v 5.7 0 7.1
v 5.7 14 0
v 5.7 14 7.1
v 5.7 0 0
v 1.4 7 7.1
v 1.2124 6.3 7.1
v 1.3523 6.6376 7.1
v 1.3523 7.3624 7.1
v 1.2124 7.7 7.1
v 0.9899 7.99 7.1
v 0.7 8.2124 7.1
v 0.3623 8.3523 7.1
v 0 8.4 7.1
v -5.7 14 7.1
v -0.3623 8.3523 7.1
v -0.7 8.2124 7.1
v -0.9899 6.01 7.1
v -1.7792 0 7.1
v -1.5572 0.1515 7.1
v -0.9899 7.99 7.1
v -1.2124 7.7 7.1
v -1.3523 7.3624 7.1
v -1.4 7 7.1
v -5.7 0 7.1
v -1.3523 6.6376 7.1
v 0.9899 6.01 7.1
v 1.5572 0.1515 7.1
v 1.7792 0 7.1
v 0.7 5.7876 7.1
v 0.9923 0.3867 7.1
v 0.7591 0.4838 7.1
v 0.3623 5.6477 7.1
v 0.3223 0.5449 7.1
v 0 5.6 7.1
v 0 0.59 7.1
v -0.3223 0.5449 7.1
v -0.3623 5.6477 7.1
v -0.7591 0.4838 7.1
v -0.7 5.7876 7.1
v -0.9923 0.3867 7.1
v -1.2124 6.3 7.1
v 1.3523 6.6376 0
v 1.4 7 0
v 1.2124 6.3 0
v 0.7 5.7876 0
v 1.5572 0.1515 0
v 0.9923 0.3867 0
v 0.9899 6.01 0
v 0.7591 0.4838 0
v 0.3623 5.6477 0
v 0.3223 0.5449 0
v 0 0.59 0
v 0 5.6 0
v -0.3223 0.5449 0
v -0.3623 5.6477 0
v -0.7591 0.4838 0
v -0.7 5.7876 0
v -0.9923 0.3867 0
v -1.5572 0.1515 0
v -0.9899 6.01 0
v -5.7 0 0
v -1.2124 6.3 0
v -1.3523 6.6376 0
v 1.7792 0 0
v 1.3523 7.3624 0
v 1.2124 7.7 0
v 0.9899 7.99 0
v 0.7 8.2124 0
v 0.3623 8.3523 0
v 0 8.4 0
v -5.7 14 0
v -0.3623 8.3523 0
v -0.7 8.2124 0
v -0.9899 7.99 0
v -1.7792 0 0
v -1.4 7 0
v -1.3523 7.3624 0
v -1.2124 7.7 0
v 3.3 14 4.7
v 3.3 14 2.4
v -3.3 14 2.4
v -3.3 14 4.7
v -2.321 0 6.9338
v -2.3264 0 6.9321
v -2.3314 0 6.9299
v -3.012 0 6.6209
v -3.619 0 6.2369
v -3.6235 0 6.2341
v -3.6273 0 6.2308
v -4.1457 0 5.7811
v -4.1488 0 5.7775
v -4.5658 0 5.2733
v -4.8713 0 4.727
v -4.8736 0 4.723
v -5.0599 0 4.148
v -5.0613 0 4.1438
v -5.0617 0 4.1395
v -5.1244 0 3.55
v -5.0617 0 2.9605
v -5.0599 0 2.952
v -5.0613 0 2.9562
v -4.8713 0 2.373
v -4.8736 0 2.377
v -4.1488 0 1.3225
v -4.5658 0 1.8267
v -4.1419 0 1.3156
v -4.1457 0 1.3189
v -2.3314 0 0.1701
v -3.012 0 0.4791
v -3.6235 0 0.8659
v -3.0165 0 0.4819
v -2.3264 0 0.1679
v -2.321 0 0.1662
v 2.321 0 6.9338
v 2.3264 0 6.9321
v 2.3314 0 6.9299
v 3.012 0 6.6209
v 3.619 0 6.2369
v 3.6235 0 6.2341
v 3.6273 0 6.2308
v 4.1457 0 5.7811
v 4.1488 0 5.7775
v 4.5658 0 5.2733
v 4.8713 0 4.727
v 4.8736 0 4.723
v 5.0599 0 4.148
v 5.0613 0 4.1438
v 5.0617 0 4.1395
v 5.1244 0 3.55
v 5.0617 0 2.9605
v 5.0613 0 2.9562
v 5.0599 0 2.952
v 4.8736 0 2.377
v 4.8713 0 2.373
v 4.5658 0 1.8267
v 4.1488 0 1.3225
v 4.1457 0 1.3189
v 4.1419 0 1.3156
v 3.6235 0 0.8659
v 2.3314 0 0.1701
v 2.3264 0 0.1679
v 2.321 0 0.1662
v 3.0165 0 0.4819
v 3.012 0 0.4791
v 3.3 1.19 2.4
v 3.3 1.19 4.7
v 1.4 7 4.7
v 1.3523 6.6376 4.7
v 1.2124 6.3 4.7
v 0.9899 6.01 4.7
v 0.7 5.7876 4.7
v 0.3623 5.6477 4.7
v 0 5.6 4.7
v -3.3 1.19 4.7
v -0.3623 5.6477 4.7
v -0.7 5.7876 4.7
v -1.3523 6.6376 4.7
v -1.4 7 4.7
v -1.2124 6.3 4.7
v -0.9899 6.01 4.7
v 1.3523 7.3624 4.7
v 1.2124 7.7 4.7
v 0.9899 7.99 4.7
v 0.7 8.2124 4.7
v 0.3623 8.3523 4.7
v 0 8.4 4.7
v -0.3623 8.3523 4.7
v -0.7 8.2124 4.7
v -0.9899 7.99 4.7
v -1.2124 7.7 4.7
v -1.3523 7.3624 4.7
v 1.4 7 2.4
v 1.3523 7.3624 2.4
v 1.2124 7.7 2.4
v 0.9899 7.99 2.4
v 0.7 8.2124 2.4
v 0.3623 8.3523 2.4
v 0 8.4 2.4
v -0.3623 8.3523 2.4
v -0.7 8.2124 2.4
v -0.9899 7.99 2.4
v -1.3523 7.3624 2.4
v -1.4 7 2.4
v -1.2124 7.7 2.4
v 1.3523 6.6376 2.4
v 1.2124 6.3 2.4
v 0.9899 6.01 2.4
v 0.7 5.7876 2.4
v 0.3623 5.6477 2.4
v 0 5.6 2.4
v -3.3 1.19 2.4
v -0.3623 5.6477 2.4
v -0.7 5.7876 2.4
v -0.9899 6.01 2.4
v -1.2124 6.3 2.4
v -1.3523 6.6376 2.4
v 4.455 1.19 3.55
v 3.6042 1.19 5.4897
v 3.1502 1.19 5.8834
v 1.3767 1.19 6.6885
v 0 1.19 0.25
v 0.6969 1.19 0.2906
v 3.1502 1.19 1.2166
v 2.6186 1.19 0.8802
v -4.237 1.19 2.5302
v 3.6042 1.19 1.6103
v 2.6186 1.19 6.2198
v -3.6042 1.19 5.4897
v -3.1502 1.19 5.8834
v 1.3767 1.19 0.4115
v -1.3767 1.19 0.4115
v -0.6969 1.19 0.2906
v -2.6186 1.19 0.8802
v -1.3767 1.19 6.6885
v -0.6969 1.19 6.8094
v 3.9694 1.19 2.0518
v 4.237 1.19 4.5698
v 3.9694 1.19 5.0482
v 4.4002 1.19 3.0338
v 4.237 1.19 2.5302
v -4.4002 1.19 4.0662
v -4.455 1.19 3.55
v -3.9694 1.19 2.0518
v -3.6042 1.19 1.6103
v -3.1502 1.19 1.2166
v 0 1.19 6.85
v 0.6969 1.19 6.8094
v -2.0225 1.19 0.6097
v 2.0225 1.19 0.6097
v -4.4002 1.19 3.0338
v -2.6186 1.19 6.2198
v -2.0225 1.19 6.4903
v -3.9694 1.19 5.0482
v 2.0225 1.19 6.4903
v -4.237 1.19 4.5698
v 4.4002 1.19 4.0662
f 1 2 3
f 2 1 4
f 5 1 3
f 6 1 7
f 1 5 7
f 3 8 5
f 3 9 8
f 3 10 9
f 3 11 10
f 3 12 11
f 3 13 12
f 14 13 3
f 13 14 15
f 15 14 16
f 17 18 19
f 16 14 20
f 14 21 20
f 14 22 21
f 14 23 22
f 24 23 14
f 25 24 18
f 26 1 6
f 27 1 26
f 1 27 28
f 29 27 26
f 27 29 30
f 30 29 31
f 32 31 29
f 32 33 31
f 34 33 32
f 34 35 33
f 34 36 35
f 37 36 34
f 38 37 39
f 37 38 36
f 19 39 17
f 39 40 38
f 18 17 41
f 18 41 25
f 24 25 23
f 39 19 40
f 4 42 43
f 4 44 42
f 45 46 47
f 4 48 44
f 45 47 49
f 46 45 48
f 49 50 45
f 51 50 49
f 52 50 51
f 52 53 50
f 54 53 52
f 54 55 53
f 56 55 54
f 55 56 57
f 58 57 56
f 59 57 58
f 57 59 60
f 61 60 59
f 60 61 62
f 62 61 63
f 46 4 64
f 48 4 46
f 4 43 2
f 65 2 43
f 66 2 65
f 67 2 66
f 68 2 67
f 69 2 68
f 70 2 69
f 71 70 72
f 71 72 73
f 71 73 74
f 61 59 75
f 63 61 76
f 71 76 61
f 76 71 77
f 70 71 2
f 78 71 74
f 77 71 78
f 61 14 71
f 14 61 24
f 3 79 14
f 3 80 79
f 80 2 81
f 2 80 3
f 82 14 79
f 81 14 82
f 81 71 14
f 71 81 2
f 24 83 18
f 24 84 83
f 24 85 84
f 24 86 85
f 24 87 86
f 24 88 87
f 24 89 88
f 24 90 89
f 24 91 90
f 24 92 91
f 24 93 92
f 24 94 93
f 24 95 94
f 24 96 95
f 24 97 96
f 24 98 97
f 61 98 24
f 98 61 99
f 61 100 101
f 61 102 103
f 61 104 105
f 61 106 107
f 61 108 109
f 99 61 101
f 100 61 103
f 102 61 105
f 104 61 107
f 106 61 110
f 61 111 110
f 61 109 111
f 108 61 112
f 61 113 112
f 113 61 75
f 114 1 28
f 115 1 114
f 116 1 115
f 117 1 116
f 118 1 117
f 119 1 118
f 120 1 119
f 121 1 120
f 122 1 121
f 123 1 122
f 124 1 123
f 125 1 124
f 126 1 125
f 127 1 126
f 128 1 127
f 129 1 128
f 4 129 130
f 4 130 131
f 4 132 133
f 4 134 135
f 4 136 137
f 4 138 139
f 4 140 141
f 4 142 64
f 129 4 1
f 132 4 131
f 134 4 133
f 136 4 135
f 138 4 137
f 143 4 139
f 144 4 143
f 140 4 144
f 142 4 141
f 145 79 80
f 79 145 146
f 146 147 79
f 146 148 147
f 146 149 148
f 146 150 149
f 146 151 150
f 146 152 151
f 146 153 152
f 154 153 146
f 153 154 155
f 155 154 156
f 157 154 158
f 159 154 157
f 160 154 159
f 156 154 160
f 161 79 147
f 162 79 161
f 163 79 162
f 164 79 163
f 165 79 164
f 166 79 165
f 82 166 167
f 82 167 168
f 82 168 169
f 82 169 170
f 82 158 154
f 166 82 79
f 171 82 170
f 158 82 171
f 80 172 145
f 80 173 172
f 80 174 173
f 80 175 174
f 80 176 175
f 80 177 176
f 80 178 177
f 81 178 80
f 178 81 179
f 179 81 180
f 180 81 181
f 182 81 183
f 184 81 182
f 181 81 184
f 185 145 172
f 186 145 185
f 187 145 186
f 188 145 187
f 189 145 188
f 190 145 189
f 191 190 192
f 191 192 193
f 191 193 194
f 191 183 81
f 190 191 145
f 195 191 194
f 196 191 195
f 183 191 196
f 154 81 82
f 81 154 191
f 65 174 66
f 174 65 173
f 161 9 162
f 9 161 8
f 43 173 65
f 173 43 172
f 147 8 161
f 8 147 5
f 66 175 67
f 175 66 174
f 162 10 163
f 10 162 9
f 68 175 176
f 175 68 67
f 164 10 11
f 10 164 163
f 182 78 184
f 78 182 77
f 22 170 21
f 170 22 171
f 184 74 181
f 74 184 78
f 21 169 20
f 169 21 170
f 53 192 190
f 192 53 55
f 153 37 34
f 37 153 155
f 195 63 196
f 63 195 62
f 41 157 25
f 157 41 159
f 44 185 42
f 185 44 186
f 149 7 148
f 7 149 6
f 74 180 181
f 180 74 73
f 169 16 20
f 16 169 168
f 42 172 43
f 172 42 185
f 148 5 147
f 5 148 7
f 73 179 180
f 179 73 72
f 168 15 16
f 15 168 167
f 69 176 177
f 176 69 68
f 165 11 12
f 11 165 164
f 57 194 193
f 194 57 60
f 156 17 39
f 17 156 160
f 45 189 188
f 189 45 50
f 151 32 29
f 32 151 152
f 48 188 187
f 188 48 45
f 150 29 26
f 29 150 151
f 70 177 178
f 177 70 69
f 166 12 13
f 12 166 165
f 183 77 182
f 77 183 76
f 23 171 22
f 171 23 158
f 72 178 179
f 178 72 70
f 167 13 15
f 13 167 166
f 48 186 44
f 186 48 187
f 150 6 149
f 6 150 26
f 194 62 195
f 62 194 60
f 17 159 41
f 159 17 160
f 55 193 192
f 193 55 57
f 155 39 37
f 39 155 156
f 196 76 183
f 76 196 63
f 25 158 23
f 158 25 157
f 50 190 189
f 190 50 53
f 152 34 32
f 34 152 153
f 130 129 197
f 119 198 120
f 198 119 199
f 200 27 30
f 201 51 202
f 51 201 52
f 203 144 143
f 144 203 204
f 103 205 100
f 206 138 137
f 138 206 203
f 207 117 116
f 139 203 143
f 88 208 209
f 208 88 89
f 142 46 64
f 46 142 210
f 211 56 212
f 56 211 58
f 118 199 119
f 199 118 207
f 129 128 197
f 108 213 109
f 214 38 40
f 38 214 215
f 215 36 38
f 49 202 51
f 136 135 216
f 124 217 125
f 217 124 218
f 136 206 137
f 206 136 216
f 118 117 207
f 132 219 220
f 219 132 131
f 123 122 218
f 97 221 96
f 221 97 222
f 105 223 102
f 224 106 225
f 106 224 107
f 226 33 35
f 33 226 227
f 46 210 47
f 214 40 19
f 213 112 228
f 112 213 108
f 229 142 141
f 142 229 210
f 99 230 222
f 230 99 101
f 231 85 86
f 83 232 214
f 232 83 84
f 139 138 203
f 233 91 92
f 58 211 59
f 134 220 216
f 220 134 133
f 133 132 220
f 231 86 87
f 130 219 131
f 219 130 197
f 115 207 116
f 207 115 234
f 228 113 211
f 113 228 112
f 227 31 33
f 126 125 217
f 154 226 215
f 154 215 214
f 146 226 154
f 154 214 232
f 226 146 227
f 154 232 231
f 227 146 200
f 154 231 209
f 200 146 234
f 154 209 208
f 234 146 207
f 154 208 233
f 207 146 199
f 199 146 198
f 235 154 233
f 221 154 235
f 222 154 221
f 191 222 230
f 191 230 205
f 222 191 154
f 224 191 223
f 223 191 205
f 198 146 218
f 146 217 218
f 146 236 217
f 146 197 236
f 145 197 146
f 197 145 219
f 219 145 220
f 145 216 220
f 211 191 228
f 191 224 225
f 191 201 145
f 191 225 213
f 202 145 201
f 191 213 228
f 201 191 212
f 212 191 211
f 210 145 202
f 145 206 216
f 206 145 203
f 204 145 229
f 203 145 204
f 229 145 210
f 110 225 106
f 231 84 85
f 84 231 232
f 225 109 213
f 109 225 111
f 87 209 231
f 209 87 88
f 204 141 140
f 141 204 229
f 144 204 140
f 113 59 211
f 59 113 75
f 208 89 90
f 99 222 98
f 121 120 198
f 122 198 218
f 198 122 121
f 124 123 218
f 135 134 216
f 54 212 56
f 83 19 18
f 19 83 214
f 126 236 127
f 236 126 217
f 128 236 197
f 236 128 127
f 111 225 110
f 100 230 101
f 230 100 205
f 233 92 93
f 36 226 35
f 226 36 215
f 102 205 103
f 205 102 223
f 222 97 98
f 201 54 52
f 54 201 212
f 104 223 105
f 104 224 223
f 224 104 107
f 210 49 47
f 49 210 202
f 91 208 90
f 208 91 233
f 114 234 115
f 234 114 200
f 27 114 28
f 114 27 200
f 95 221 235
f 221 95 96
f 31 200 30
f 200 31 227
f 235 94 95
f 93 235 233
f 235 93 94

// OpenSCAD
// Belt-end clip: holds the folded loop at the end of each belt, in place of zip ties.
// Fold 40mm of belt back on itself with the teeth meshed, push the doubled belt
// through the slot, and tighten an M3 x 12 screw into the side hole. The loop
// left beyond the clip goes over the belt-end post.
// Print flat (slot horizontal).

belt_w   = 6;      // GT2 belt width
pair_t   = 2.3;    // two belts with teeth meshed, plus clearance
length   = 14;
wall     = 2.4;
pilot_d  = 2.8;    // M3 screw cuts its own thread

module belt_clip() {
    w = belt_w + 0.6 + 2 * wall;
    h = pair_t + 2 * wall;
    difference() {
        translate([-w / 2, 0, 0]) cube([w, length, h]);
        // slot for the doubled belt
        translate([-(belt_w + 0.6) / 2, -1, wall]) cube([belt_w + 0.6, length + 2, pair_t]);
        // pinch screw, from the top into the slot
        translate([0, length / 2, -1]) cylinder(h = h + 2, d = pilot_d, $fn = 24);
        // rounded entry so the belt doesn't snag
        translate([0, -0.01, wall + pair_t / 2]) rotate([-90, 0, 0]) scale([1.35, 1, 1]) cylinder(h = 1.2, d1 = belt_w + 1.6, d2 = belt_w + 0.6, $fn = 40);
    }
}

belt_clip();
